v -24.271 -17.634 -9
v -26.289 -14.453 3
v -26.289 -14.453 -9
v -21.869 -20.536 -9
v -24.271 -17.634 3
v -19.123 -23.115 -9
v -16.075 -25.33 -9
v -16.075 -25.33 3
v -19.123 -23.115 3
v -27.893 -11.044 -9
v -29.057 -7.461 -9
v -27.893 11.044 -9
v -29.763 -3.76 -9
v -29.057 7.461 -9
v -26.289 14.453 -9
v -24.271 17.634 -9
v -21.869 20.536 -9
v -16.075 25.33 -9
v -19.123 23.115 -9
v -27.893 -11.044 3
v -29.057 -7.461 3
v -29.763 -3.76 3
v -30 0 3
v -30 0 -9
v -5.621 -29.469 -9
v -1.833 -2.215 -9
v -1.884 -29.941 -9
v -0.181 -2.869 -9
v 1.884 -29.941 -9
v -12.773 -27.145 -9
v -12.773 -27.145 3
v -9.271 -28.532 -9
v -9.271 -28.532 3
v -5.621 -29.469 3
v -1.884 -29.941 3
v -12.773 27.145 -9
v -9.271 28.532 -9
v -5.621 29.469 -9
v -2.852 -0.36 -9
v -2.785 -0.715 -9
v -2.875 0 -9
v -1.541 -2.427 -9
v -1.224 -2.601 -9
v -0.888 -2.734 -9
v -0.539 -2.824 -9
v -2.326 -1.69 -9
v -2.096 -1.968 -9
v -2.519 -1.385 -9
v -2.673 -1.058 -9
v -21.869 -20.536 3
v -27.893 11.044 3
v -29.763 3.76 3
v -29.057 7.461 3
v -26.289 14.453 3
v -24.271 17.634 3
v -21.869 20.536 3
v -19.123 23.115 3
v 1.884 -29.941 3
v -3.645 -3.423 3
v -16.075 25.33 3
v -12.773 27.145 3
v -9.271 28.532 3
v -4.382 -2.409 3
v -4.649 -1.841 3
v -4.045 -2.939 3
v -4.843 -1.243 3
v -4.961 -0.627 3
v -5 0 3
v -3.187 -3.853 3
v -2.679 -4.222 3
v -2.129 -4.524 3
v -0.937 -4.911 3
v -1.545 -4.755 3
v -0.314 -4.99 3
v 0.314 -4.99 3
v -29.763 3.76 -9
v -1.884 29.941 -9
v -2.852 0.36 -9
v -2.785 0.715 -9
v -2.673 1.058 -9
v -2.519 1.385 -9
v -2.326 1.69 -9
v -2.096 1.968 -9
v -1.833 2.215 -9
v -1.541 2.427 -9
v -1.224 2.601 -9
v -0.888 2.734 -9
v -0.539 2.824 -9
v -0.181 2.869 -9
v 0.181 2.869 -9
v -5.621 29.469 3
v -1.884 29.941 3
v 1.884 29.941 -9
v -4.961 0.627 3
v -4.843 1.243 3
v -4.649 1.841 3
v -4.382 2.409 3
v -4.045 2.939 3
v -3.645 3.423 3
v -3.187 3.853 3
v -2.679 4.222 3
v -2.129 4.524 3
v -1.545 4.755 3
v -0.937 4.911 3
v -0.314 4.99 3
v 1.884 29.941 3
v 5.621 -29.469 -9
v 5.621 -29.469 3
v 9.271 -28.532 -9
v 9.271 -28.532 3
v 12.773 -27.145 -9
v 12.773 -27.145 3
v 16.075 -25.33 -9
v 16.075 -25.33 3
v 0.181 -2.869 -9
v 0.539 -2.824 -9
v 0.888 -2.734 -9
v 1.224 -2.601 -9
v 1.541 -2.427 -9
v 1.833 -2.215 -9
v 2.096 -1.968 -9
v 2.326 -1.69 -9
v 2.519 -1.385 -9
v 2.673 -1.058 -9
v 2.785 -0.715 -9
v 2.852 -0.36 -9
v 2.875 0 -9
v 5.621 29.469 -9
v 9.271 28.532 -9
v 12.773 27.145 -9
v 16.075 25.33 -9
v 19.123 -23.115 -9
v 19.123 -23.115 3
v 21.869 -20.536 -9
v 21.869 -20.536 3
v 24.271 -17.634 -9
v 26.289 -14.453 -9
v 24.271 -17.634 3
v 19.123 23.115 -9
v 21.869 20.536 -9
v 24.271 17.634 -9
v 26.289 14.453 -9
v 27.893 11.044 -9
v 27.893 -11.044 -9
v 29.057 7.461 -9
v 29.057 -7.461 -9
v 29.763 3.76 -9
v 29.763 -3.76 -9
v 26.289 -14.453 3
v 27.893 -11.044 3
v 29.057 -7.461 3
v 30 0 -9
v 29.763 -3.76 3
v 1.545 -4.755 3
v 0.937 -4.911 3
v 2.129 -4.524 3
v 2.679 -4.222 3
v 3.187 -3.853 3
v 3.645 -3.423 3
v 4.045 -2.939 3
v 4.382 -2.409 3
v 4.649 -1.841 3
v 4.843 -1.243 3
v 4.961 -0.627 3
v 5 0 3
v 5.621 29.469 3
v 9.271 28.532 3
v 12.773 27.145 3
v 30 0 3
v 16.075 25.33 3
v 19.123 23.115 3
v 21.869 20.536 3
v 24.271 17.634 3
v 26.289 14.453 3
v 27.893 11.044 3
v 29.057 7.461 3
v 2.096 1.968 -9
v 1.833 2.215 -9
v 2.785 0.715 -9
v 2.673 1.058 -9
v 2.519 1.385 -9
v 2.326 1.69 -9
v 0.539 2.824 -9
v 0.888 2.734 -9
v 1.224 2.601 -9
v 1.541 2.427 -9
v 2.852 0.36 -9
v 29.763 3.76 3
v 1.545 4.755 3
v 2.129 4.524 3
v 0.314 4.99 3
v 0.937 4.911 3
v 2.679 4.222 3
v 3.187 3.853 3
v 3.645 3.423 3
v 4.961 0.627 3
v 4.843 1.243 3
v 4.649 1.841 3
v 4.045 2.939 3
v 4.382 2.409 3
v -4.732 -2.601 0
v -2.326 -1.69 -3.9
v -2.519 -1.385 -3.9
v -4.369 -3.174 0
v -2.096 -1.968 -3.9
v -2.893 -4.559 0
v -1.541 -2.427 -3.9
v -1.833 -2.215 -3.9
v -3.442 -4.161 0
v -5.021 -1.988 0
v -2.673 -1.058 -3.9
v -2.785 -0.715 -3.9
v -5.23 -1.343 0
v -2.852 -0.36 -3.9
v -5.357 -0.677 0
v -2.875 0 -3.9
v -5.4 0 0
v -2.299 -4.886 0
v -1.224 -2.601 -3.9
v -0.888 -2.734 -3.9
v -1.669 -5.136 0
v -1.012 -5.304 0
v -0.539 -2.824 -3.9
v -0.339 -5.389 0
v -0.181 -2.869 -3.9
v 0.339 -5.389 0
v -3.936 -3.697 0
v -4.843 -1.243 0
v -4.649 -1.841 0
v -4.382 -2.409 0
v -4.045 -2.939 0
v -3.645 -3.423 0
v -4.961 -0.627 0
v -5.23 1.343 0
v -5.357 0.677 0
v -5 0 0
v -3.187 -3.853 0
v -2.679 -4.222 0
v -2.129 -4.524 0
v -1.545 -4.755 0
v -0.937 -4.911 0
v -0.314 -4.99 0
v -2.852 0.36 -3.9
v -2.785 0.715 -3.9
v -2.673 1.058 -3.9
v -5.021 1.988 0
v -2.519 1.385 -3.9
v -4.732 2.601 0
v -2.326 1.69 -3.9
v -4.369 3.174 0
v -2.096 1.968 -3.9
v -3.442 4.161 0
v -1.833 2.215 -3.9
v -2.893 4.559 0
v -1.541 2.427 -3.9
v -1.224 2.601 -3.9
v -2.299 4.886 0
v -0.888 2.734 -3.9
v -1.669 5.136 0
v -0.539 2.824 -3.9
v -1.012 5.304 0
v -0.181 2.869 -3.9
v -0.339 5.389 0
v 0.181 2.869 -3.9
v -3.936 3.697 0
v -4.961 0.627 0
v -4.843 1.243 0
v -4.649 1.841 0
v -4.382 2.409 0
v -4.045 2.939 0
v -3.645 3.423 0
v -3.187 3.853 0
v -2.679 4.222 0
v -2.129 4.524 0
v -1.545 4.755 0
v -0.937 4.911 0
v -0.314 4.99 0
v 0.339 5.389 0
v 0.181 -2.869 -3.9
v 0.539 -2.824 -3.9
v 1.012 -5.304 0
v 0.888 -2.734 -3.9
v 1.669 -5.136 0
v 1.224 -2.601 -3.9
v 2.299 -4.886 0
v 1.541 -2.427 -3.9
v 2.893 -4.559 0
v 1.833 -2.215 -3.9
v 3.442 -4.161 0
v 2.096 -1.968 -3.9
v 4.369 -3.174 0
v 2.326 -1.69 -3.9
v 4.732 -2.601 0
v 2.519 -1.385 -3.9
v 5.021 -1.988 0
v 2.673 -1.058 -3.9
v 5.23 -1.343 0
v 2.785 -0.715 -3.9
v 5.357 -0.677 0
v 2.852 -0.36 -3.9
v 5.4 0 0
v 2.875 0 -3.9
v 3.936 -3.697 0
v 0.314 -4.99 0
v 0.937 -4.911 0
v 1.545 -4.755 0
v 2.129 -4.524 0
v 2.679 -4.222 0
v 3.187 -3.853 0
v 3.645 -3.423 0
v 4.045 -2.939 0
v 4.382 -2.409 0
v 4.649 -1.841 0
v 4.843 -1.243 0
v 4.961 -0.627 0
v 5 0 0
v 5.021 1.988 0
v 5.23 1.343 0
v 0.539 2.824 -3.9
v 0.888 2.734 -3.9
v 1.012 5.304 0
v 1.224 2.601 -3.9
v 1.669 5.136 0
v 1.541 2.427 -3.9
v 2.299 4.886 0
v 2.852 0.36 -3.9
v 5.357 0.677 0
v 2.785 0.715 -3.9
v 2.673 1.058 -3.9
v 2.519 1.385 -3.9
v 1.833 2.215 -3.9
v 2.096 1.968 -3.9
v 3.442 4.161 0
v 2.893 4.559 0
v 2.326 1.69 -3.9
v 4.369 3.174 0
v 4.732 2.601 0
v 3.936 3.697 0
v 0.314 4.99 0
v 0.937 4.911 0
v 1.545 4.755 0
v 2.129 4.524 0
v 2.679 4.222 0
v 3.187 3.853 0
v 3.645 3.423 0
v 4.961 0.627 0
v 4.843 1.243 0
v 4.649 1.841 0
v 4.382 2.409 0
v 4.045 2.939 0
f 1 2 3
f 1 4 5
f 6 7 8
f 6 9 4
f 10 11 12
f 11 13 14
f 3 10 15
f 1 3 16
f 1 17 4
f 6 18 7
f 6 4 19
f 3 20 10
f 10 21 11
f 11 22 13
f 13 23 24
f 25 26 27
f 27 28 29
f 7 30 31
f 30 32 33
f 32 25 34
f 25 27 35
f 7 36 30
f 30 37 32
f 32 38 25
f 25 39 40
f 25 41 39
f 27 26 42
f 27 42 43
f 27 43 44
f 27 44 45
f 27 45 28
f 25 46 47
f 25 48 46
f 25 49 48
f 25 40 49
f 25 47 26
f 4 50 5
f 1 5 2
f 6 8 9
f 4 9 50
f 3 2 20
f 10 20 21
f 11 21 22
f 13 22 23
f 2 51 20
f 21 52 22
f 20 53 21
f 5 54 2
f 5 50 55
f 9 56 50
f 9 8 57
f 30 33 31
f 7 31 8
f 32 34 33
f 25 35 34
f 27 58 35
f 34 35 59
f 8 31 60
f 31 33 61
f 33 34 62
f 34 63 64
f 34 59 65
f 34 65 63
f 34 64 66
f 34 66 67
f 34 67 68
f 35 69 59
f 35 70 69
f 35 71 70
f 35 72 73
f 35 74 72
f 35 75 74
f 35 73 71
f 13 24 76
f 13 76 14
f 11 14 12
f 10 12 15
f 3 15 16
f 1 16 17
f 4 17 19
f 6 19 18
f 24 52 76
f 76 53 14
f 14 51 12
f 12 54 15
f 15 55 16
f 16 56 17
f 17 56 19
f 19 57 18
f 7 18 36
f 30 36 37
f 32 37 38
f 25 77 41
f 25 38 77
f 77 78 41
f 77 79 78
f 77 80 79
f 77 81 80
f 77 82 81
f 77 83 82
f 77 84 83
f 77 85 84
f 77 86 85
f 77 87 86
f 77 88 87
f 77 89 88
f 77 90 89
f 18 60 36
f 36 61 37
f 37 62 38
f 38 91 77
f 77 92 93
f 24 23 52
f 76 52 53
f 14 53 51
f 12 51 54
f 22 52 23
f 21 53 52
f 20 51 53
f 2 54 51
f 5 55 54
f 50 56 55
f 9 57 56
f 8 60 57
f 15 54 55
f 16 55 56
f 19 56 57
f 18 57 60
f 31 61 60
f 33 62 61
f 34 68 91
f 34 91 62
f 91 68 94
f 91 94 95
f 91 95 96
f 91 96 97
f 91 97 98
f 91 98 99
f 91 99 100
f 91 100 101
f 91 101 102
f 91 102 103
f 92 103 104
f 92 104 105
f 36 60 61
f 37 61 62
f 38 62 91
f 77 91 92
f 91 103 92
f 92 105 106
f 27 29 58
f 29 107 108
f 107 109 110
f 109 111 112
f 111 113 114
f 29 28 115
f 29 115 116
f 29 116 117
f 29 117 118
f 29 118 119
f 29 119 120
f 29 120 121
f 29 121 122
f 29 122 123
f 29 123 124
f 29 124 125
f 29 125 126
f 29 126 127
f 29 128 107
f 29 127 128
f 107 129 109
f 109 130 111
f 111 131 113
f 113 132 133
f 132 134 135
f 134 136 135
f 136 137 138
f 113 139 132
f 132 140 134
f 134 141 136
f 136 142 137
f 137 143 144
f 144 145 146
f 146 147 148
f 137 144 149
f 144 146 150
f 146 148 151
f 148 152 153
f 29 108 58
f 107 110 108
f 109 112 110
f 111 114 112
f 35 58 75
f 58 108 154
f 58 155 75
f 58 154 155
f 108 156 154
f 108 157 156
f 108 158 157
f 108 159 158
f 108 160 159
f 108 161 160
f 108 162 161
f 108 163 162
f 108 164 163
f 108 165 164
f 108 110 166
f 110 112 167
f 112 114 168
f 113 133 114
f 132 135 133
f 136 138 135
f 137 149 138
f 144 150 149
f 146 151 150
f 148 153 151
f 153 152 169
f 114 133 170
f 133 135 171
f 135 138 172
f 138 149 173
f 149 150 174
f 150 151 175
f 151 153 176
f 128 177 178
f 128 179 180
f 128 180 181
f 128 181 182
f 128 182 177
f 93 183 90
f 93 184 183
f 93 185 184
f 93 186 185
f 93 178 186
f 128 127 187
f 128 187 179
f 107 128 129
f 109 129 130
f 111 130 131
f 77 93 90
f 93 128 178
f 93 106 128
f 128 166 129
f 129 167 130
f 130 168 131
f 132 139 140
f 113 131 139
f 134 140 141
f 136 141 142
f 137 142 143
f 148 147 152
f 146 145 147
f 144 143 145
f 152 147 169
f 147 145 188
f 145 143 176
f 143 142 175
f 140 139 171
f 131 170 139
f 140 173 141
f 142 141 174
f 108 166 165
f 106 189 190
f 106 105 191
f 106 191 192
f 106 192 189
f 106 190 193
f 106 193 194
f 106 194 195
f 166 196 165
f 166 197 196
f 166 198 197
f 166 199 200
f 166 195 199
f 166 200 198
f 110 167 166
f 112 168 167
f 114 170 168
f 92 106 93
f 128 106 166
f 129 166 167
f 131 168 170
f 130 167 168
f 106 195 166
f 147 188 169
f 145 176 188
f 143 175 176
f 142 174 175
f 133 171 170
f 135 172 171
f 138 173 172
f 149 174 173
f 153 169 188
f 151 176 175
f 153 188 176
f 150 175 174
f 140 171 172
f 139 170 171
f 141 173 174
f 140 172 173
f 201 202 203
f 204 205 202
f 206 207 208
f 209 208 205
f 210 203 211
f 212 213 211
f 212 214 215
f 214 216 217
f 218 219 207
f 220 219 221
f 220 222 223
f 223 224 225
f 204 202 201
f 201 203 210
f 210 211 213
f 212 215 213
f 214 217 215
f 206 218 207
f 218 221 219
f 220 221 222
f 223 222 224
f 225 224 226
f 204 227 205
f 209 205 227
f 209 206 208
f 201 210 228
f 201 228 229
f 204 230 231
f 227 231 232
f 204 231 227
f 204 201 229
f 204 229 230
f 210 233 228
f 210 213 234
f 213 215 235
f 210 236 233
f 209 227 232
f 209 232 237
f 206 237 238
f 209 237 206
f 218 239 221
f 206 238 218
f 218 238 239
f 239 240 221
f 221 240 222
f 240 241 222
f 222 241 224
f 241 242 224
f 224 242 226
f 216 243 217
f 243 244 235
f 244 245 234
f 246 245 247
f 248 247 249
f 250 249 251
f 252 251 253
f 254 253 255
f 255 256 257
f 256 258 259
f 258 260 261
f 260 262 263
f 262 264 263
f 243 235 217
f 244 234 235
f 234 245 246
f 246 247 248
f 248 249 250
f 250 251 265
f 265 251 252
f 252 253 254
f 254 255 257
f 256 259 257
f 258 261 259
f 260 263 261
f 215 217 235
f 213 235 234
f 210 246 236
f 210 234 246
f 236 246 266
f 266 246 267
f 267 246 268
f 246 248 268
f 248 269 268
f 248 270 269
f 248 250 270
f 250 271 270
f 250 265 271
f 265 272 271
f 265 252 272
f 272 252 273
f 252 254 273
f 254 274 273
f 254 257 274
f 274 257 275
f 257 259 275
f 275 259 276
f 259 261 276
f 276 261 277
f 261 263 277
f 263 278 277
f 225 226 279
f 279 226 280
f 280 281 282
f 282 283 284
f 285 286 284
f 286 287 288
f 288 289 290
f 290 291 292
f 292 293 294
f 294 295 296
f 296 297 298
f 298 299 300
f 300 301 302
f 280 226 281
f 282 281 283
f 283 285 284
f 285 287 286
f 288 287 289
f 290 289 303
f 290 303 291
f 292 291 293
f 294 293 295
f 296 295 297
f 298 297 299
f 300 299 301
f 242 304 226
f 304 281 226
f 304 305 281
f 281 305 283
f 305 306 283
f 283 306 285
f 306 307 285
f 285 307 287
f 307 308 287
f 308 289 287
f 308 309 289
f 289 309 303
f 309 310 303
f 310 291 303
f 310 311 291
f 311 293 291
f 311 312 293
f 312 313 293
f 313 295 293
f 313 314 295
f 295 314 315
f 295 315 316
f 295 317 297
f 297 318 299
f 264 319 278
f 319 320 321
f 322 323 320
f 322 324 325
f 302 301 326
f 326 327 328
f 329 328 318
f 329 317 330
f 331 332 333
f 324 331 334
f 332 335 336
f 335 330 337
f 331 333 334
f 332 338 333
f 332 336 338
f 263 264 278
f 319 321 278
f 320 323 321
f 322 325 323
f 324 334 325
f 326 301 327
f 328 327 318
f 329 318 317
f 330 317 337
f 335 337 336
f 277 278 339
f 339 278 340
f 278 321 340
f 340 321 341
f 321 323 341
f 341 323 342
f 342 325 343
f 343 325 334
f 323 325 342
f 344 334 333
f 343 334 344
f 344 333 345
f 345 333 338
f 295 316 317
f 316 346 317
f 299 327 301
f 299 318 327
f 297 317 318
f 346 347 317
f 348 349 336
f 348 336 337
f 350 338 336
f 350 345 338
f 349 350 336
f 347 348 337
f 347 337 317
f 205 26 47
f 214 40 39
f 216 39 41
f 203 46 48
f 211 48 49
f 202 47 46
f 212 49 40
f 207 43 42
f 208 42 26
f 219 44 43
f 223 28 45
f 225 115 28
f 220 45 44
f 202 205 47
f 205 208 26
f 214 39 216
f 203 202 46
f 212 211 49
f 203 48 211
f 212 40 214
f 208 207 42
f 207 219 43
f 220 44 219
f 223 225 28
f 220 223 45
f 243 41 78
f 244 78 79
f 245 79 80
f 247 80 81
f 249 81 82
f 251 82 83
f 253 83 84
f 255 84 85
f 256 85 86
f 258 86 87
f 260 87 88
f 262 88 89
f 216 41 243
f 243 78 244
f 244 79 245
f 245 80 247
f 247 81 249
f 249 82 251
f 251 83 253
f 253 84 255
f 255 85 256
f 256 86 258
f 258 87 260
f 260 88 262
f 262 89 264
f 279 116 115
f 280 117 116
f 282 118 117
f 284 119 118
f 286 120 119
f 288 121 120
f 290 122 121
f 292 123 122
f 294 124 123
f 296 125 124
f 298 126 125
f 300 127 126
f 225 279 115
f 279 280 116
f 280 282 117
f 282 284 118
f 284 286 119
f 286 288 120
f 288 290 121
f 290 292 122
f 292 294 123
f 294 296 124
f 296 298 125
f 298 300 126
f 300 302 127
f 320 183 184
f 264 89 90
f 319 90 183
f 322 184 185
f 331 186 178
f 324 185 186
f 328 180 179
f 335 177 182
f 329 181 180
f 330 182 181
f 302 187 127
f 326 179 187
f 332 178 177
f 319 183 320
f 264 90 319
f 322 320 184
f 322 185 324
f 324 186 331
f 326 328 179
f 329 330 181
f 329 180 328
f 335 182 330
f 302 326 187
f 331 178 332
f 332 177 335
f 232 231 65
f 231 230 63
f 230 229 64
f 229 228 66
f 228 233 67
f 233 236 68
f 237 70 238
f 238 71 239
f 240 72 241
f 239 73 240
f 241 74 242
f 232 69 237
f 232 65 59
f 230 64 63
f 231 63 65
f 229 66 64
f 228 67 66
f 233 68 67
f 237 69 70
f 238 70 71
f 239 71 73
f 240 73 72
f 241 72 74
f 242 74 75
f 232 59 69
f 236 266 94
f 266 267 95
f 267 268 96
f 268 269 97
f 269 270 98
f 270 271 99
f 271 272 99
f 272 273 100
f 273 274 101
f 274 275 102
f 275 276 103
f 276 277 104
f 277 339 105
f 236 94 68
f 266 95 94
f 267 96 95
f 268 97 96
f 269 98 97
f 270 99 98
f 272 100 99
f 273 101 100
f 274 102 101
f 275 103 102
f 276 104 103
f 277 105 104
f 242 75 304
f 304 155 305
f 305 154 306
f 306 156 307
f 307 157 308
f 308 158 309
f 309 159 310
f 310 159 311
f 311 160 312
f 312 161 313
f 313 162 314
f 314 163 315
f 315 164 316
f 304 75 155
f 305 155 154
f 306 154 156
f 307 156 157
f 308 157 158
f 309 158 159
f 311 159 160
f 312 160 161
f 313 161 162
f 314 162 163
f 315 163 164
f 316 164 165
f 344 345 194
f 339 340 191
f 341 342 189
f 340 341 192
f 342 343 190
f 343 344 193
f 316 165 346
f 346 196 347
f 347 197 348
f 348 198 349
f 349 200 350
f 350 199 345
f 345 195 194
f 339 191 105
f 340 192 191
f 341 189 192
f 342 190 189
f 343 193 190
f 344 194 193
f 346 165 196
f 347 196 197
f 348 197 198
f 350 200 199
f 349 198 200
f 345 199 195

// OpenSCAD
$fn = 50;

difference() {
	union() {
		translate(v = [0, 0, -9.0]) {
			cylinder(h = 12, r = 30.0);
		}
		#translate(v = [0, 0, -12.0]) {
			cylinder(h = 12, r = 2.875);
		}
	}
	union() {
		translate(v = [0, 0, 0]) {
			rotate(a = [0, 0, 0]) {
				difference() {
					union() {
						translate(v = [0, 0, -12.0]) {
							cylinder(h = 12, r = 2.6);
						}
						translate(v = [0, 0, -3.9]) {
							cylinder(h = 3.9, r1 = 2.875, r2 = 5.4);
						}
						translate(v = [0, 0, -12.0]) {
							cylinder(h = 12, r = 2.875);
						}
						translate(v = [0, 0, -12.0]) {
							cylinder(h = 12, r = 2.6);
						}
					}
					union();
				}
			}
		}
		#cylinder(h = 3, r = 5.0);
	}
}
